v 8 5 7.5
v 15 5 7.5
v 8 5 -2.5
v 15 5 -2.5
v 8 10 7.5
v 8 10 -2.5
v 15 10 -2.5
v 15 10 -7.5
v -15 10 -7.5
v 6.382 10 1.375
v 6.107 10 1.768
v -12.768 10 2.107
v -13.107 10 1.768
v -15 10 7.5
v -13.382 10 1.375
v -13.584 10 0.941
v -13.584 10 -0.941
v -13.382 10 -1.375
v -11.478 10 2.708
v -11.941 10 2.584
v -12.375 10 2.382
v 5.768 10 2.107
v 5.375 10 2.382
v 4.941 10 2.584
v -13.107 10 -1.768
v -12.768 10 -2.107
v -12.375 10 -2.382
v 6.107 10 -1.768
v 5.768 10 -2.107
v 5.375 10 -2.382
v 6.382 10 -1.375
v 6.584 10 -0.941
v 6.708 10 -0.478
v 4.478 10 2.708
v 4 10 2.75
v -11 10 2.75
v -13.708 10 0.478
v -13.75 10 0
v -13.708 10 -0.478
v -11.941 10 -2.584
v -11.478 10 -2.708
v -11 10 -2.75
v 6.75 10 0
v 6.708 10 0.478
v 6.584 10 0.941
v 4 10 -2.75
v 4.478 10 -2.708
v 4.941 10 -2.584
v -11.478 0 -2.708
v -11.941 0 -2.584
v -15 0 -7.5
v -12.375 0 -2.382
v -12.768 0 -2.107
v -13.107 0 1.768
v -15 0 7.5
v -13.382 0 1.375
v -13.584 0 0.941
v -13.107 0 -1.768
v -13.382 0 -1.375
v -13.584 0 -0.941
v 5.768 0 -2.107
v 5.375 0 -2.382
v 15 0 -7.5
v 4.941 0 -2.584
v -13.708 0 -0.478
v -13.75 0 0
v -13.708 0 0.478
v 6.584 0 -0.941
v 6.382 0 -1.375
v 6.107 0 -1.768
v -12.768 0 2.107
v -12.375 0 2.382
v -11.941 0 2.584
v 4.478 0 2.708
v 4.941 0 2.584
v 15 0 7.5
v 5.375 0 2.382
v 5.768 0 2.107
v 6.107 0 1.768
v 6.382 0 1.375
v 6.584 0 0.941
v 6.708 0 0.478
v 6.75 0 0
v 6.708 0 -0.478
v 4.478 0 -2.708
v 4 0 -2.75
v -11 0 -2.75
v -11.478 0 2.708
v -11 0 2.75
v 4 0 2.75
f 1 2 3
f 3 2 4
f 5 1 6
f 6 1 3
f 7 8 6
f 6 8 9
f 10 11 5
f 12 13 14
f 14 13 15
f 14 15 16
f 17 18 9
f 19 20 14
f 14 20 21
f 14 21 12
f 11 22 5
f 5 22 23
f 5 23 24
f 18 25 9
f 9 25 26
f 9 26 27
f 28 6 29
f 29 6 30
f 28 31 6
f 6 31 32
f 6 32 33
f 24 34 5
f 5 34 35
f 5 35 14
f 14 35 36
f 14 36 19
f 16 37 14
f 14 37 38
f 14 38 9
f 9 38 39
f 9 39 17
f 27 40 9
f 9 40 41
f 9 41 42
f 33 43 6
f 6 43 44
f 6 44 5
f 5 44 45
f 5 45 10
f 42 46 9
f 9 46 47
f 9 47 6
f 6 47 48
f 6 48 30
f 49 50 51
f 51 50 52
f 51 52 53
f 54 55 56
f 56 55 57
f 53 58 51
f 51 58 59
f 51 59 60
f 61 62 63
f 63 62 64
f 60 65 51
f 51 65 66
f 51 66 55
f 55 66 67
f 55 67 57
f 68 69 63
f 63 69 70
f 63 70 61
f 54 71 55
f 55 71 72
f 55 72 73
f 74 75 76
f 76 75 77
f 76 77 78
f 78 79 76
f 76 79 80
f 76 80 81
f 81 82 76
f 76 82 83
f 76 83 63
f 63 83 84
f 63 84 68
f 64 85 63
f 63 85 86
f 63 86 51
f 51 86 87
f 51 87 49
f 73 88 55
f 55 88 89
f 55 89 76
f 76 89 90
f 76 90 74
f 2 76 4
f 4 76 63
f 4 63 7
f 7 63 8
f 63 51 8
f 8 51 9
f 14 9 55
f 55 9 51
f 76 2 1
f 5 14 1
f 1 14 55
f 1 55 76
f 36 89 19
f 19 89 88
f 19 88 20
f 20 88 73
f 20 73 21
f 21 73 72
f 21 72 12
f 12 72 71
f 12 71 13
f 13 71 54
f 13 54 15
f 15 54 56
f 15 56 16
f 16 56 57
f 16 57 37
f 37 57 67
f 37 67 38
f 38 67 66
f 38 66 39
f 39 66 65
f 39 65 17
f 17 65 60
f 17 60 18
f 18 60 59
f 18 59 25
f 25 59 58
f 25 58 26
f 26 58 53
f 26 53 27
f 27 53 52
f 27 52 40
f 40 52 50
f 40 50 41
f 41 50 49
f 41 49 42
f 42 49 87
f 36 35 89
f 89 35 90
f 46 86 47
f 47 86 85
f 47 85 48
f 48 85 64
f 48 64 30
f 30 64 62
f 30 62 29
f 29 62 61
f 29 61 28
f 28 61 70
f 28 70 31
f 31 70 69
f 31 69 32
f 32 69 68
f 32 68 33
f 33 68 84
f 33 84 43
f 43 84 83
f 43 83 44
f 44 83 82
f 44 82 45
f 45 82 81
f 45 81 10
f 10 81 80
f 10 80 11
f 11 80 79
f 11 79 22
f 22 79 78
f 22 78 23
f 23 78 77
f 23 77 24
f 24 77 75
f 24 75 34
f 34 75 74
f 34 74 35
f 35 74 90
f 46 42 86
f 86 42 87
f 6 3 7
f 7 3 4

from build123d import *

# Parameters (mm, degrees)
SKETCH1_W               = 30
SKETCH1_H               = 15
BOSS_EXTRUDE1_DEPTH     = 10
CUT_EXTRUDE1_DEPTH      = 24.452078799
CUT_EXTRUDE1_DEPTH_BACK = 24.452078799
SKETCH2_W               = 7
SKETCH2_H               = 5
SKETCH3_W               = 7
SKETCH3_H               = 5
BOSS_EXTRUDE2_DEPTH     = 5


with BuildPart() as part:
    # Sketch1 → Boss-Extrude1 (new body)
    with BuildSketch(Plane(origin=(0, 0, 0), x_dir=(1, 0, 0), z_dir=(0, 1, 0))):
        Rectangle(SKETCH1_W, SKETCH1_H)
        with BuildLine():
            Line((-11, 2.75), (4, 2.75))
            ThreePointArc((4, 2.75), (6.75, 0), (4, -2.75))
            Line((4, -2.75), (-11, -2.75))
            ThreePointArc((-11, -2.75), (-13.75, 0), (-11, 2.75))
        make_face(mode=Mode.SUBTRACT)
    extrude(amount=BOSS_EXTRUDE1_DEPTH)

    # Sketch2 → Cut-Extrude1 (cut, two sides: drawn at the far end of the back side and taken through both)
    with BuildSketch(Plane.XY.offset(7.5).offset(-CUT_EXTRUDE1_DEPTH_BACK)):
        with Locations((11.5, 7.5)):
            Rectangle(SKETCH2_W, SKETCH2_H)
    extrude(amount=CUT_EXTRUDE1_DEPTH + CUT_EXTRUDE1_DEPTH_BACK, mode=Mode.SUBTRACT)

    # Sketch3 → Boss-Extrude2 (add)
    with BuildSketch(Plane(origin=(0, 5, 0), x_dir=(1, 0, 0), z_dir=(0, 1, 0))):
        with Locations((11.5, 5)):
            Rectangle(SKETCH3_W, SKETCH3_H)
    extrude(amount=BOSS_EXTRUDE2_DEPTH)


solid = part.part
